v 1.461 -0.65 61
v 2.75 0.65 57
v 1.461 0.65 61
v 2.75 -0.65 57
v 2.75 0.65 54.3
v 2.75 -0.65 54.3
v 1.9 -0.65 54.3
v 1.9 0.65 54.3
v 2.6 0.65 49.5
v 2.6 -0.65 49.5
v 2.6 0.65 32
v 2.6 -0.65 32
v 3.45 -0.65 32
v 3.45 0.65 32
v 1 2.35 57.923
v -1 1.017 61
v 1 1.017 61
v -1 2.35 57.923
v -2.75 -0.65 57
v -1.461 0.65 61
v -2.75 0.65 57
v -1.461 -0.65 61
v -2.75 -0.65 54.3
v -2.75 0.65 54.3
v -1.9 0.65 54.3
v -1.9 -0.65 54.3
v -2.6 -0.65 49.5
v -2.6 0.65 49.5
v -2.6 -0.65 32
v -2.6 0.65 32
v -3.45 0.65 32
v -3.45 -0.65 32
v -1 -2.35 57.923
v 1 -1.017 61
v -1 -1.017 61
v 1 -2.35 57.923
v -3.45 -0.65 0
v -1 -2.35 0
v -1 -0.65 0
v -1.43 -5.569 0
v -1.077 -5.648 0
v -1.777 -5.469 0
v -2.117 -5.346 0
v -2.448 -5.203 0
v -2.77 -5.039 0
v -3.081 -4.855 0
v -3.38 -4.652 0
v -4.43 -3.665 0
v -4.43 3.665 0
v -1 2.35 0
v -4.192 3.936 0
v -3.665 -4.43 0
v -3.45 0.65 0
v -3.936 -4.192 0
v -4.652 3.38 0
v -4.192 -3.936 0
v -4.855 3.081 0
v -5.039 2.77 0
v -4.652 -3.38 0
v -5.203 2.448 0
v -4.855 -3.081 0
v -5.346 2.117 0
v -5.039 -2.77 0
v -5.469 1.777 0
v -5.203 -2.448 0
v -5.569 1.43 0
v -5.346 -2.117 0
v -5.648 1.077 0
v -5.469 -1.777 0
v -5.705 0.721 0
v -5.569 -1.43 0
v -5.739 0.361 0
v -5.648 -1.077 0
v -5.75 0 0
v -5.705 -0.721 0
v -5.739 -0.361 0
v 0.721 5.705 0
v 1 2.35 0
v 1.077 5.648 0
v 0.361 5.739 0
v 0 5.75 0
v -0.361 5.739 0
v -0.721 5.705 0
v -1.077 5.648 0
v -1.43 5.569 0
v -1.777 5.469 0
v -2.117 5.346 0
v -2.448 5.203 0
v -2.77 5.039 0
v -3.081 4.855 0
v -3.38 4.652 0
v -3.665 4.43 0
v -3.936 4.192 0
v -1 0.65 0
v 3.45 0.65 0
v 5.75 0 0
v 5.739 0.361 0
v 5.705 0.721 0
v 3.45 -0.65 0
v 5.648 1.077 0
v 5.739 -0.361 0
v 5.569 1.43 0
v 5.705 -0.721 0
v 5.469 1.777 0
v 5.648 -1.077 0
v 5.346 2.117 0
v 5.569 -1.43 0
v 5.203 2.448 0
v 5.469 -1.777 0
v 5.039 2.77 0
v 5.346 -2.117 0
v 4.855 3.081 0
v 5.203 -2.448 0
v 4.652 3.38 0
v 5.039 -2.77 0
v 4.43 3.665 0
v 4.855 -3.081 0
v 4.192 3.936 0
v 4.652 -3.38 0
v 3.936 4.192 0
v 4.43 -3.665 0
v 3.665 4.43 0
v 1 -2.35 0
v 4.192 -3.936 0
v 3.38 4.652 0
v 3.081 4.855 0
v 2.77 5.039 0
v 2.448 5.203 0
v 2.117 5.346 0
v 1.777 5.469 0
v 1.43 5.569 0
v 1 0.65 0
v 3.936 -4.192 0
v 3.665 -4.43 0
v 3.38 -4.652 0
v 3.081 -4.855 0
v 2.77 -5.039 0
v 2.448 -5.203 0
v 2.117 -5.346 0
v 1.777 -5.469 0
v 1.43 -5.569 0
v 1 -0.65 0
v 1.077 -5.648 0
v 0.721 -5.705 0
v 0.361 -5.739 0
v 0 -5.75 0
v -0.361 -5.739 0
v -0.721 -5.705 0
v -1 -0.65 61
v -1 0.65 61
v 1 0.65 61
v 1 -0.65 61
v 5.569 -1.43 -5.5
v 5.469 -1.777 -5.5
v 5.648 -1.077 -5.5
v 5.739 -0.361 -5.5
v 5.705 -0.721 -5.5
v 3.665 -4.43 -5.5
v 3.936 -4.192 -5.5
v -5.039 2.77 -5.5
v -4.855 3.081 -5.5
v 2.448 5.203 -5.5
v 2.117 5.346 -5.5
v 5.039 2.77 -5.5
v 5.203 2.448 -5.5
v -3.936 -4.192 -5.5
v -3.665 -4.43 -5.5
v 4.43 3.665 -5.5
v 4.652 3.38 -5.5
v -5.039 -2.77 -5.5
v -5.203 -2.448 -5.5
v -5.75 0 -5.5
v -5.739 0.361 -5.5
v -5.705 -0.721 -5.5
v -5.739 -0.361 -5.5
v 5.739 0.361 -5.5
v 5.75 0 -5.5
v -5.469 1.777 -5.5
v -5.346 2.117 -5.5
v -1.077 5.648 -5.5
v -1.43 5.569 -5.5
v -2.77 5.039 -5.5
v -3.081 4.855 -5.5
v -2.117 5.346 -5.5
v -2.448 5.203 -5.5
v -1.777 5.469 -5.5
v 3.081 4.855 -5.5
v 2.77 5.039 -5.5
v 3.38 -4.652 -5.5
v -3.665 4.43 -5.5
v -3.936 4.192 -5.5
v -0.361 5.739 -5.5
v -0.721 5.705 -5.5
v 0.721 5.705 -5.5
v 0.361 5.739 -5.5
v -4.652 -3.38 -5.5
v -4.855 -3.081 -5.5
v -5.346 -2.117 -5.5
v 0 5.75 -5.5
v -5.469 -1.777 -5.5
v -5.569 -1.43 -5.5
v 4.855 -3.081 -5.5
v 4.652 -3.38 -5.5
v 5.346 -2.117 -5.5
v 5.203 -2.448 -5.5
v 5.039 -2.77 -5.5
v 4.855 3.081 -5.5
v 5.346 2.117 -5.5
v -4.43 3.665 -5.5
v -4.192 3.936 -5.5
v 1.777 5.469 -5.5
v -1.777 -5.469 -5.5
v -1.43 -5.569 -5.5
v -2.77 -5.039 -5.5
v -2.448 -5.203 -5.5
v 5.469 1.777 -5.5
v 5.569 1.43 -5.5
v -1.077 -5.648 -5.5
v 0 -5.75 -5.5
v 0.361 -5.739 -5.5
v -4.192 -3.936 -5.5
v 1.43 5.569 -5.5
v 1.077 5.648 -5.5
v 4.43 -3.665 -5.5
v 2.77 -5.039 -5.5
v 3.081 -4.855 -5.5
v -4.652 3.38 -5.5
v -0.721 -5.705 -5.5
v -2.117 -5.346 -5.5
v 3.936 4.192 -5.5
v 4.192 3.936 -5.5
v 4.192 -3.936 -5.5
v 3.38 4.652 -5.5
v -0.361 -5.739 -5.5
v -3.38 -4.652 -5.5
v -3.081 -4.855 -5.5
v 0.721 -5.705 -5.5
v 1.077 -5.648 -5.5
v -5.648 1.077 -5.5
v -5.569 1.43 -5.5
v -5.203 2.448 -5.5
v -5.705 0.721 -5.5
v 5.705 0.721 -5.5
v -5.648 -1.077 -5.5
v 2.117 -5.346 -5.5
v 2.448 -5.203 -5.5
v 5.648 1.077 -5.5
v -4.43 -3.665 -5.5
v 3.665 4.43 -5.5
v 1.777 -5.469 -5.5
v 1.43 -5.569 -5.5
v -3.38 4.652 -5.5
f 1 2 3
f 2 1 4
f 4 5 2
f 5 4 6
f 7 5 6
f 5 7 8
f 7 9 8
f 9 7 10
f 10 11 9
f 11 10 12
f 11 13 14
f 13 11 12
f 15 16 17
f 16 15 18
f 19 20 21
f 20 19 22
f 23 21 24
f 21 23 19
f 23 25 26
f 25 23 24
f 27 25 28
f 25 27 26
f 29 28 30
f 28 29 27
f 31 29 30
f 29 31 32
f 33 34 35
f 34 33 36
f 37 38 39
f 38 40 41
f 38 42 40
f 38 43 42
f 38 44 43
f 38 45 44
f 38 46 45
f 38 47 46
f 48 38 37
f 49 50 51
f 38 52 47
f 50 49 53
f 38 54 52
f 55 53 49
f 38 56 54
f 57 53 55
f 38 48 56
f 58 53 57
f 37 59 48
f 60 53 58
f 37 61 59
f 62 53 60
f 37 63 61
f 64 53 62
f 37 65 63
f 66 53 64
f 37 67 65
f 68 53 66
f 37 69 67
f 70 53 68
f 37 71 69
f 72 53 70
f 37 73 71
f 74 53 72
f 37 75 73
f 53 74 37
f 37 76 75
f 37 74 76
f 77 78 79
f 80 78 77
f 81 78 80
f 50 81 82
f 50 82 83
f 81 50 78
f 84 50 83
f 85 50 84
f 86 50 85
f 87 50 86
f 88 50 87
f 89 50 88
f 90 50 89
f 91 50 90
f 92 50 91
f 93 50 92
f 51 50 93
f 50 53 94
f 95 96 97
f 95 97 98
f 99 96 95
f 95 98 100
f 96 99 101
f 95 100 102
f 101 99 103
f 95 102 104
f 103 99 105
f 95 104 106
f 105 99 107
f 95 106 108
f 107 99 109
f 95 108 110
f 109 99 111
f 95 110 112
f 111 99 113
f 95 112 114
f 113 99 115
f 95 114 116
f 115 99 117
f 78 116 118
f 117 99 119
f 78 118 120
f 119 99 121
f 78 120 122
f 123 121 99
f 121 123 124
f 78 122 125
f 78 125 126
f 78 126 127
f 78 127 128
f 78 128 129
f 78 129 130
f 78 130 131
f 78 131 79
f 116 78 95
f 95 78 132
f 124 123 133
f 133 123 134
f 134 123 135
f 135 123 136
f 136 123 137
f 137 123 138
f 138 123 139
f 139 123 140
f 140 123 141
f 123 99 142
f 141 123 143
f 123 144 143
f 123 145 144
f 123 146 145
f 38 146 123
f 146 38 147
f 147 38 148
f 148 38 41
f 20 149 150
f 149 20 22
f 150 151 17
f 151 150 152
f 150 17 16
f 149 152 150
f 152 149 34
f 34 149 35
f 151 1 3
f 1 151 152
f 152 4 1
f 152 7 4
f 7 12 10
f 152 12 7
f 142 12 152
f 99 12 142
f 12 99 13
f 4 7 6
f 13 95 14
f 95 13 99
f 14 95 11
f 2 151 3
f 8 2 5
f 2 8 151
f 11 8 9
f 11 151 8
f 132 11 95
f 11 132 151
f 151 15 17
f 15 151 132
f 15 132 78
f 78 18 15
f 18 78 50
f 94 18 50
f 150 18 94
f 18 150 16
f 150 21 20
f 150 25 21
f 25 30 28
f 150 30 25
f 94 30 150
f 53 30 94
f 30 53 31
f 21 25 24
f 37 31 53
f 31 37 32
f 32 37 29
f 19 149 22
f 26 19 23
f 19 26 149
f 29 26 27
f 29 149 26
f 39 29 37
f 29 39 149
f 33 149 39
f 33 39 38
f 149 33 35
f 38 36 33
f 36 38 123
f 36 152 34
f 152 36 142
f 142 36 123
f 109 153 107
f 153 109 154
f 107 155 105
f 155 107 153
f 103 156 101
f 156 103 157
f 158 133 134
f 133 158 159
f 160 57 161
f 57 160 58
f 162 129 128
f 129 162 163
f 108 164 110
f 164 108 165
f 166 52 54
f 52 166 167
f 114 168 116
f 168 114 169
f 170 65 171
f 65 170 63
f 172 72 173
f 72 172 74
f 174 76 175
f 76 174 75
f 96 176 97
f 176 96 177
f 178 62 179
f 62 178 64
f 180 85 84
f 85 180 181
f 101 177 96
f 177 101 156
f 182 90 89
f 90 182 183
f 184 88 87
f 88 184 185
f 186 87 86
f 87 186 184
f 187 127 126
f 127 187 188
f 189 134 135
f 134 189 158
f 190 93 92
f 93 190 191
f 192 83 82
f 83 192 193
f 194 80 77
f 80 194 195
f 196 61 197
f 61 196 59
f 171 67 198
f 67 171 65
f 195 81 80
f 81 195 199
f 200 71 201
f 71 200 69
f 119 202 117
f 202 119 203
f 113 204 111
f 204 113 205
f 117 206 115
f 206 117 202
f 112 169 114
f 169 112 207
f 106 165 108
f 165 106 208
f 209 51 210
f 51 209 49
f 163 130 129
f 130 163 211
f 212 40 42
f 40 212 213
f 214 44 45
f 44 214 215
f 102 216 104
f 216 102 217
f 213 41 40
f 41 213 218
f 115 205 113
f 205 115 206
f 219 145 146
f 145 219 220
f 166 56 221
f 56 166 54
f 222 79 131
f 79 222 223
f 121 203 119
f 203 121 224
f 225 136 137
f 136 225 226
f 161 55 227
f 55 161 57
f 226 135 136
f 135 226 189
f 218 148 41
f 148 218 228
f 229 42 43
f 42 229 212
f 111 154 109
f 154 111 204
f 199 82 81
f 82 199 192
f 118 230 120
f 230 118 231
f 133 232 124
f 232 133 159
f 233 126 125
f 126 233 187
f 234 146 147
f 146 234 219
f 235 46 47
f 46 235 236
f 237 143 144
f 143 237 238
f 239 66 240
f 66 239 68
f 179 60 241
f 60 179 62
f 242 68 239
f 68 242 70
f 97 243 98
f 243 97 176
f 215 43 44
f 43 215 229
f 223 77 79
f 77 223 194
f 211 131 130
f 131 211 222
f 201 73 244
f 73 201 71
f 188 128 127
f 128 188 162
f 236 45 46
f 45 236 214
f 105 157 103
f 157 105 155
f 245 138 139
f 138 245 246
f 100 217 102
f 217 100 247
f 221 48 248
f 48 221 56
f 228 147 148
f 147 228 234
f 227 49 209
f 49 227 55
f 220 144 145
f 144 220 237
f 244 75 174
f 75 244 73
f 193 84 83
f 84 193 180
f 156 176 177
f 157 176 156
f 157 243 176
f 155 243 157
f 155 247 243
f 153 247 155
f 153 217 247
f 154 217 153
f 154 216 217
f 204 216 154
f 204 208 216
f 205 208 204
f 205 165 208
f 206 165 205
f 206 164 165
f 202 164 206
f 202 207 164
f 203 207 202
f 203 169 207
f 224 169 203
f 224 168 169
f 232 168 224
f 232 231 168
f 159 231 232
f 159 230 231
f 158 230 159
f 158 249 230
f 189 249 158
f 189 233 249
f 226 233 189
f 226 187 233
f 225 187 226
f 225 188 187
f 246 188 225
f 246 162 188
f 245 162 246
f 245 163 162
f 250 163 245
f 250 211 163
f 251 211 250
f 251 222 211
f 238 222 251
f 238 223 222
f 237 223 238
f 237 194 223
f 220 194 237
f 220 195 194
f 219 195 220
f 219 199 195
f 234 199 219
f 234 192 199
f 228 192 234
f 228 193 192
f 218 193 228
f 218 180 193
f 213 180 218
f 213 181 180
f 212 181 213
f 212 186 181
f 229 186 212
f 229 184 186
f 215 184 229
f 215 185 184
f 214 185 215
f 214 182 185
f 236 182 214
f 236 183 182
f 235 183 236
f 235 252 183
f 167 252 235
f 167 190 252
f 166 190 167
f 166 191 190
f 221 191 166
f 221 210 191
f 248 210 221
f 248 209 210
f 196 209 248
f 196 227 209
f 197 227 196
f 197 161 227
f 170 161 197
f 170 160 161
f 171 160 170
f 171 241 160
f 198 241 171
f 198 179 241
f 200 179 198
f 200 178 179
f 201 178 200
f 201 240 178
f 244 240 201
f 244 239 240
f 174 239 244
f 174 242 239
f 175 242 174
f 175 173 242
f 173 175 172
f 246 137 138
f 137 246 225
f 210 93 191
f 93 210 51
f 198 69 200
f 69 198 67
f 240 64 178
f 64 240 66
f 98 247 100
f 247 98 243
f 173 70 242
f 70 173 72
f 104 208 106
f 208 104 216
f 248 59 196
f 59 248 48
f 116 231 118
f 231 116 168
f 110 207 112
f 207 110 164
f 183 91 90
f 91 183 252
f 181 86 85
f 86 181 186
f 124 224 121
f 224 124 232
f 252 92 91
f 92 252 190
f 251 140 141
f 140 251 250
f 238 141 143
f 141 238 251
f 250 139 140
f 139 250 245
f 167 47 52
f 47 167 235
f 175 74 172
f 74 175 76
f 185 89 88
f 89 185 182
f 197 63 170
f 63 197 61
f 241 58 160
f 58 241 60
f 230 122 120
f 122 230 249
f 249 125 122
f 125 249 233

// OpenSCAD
// file: ../lib.scad
module chamferedCube(x=10, y=10, z=10, chamfer=1)
{
    c=sin(45);

    minkowski()
    {
        cube([x-c*2,y-c*2,z-c*2],true);
        polyhedron([[c,0,0],[0,0,c],[0,c,0],[0,0,-c],[0,-c,0],[-c,0,0]],
        [[0,1,2], [0,2,3],[0,3,4],[0,4,1],[5,2,1], [5,3,2],[5,4,3],[5,1,4],]);
        //cube([10,10,10],true);
    }
}

module radCube(x=10, y=10, z=10, rad=1)
{
    minkowski()
    {
        cube([x-rad*2,y-rad*2,z-rad*2],true);
        sphere(r=rad);
        //cube([10,10,10],true);
    }
}

module radCylinder(d=5,h=50,r=1)
{
    minkowski()
    {
        cylinder(h,d-r*2,true);
        sphere(r=1);
        //cube([10,10,10],true);
    }
}

module hex(af=10)
{
    r= af/2/cos(30);
    regular_polygon(order=6,r=r);
 }

 module regular_polygon(order = 4, r=1){
     angles=[ for (i = [0:order-1]) i*(360/order) ];
     coords=[ for (th=angles) [r*cos(th), r*sin(th)] ];
     polygon(coords);
 }

module chamferHole(d=10, chamfer=1)
{
    
    c=chamfer*sin(45);
    rotate_extrude($fn=200) polygon(points=[[0,c],[d/2,c],[d/2+c,0],[d/2,-c],[0,-c]]);
}

$fn=100;
//radCylinder();
//hex();
//sphere(r=rad,$fa=10);
//chamferedCube();
//++radiusedCube();
//chamferHole(7,3);
// main file
include <../lib.scad>

$fn=100;
x = 6.9;
y = 4.7;
thin = 1.3;
thick = 2;



difference()
{
    union()
    {
        linear_extrude(61)
        {
        polygon([[-x/2,thin/2],[-x/2,-thin/2],[-thick/2,-thin/2],
        [-thick/2,-thin/2],[-thick/2,-y/2],[thick/2,-y/2],[thick/2,-thin/2],
        [x/2,-thin/2],[x/2,thin/2],[thick/2,thin/2],[thick/2,y/2],
        [-thick/2,y/2],[-thick/2,thin/2]
        ]);}
        translate([0,0,0]){
        rotate([180,0,0]){cylinder(d=11.5, h=5.5);
                }}
    }
    
    for(i = [0,180])
    {
            rotate([90,0,i])
                {
                    linear_extrude(4,center=true){
                    polygon([[10,32],[2.6,32],[2.6,49.5],[1.9,54.3],[2.75,54.3],
                    [2.75,57],[1.3,61.5],[10,61.5]]);}
                }
          
              rotate([90,0,i+90])
                {
                    linear_extrude(4,center=true){
                    polygon([[2.75,57],[0.8,61.5],[10,61.5]]);}
                }
    } 
}
